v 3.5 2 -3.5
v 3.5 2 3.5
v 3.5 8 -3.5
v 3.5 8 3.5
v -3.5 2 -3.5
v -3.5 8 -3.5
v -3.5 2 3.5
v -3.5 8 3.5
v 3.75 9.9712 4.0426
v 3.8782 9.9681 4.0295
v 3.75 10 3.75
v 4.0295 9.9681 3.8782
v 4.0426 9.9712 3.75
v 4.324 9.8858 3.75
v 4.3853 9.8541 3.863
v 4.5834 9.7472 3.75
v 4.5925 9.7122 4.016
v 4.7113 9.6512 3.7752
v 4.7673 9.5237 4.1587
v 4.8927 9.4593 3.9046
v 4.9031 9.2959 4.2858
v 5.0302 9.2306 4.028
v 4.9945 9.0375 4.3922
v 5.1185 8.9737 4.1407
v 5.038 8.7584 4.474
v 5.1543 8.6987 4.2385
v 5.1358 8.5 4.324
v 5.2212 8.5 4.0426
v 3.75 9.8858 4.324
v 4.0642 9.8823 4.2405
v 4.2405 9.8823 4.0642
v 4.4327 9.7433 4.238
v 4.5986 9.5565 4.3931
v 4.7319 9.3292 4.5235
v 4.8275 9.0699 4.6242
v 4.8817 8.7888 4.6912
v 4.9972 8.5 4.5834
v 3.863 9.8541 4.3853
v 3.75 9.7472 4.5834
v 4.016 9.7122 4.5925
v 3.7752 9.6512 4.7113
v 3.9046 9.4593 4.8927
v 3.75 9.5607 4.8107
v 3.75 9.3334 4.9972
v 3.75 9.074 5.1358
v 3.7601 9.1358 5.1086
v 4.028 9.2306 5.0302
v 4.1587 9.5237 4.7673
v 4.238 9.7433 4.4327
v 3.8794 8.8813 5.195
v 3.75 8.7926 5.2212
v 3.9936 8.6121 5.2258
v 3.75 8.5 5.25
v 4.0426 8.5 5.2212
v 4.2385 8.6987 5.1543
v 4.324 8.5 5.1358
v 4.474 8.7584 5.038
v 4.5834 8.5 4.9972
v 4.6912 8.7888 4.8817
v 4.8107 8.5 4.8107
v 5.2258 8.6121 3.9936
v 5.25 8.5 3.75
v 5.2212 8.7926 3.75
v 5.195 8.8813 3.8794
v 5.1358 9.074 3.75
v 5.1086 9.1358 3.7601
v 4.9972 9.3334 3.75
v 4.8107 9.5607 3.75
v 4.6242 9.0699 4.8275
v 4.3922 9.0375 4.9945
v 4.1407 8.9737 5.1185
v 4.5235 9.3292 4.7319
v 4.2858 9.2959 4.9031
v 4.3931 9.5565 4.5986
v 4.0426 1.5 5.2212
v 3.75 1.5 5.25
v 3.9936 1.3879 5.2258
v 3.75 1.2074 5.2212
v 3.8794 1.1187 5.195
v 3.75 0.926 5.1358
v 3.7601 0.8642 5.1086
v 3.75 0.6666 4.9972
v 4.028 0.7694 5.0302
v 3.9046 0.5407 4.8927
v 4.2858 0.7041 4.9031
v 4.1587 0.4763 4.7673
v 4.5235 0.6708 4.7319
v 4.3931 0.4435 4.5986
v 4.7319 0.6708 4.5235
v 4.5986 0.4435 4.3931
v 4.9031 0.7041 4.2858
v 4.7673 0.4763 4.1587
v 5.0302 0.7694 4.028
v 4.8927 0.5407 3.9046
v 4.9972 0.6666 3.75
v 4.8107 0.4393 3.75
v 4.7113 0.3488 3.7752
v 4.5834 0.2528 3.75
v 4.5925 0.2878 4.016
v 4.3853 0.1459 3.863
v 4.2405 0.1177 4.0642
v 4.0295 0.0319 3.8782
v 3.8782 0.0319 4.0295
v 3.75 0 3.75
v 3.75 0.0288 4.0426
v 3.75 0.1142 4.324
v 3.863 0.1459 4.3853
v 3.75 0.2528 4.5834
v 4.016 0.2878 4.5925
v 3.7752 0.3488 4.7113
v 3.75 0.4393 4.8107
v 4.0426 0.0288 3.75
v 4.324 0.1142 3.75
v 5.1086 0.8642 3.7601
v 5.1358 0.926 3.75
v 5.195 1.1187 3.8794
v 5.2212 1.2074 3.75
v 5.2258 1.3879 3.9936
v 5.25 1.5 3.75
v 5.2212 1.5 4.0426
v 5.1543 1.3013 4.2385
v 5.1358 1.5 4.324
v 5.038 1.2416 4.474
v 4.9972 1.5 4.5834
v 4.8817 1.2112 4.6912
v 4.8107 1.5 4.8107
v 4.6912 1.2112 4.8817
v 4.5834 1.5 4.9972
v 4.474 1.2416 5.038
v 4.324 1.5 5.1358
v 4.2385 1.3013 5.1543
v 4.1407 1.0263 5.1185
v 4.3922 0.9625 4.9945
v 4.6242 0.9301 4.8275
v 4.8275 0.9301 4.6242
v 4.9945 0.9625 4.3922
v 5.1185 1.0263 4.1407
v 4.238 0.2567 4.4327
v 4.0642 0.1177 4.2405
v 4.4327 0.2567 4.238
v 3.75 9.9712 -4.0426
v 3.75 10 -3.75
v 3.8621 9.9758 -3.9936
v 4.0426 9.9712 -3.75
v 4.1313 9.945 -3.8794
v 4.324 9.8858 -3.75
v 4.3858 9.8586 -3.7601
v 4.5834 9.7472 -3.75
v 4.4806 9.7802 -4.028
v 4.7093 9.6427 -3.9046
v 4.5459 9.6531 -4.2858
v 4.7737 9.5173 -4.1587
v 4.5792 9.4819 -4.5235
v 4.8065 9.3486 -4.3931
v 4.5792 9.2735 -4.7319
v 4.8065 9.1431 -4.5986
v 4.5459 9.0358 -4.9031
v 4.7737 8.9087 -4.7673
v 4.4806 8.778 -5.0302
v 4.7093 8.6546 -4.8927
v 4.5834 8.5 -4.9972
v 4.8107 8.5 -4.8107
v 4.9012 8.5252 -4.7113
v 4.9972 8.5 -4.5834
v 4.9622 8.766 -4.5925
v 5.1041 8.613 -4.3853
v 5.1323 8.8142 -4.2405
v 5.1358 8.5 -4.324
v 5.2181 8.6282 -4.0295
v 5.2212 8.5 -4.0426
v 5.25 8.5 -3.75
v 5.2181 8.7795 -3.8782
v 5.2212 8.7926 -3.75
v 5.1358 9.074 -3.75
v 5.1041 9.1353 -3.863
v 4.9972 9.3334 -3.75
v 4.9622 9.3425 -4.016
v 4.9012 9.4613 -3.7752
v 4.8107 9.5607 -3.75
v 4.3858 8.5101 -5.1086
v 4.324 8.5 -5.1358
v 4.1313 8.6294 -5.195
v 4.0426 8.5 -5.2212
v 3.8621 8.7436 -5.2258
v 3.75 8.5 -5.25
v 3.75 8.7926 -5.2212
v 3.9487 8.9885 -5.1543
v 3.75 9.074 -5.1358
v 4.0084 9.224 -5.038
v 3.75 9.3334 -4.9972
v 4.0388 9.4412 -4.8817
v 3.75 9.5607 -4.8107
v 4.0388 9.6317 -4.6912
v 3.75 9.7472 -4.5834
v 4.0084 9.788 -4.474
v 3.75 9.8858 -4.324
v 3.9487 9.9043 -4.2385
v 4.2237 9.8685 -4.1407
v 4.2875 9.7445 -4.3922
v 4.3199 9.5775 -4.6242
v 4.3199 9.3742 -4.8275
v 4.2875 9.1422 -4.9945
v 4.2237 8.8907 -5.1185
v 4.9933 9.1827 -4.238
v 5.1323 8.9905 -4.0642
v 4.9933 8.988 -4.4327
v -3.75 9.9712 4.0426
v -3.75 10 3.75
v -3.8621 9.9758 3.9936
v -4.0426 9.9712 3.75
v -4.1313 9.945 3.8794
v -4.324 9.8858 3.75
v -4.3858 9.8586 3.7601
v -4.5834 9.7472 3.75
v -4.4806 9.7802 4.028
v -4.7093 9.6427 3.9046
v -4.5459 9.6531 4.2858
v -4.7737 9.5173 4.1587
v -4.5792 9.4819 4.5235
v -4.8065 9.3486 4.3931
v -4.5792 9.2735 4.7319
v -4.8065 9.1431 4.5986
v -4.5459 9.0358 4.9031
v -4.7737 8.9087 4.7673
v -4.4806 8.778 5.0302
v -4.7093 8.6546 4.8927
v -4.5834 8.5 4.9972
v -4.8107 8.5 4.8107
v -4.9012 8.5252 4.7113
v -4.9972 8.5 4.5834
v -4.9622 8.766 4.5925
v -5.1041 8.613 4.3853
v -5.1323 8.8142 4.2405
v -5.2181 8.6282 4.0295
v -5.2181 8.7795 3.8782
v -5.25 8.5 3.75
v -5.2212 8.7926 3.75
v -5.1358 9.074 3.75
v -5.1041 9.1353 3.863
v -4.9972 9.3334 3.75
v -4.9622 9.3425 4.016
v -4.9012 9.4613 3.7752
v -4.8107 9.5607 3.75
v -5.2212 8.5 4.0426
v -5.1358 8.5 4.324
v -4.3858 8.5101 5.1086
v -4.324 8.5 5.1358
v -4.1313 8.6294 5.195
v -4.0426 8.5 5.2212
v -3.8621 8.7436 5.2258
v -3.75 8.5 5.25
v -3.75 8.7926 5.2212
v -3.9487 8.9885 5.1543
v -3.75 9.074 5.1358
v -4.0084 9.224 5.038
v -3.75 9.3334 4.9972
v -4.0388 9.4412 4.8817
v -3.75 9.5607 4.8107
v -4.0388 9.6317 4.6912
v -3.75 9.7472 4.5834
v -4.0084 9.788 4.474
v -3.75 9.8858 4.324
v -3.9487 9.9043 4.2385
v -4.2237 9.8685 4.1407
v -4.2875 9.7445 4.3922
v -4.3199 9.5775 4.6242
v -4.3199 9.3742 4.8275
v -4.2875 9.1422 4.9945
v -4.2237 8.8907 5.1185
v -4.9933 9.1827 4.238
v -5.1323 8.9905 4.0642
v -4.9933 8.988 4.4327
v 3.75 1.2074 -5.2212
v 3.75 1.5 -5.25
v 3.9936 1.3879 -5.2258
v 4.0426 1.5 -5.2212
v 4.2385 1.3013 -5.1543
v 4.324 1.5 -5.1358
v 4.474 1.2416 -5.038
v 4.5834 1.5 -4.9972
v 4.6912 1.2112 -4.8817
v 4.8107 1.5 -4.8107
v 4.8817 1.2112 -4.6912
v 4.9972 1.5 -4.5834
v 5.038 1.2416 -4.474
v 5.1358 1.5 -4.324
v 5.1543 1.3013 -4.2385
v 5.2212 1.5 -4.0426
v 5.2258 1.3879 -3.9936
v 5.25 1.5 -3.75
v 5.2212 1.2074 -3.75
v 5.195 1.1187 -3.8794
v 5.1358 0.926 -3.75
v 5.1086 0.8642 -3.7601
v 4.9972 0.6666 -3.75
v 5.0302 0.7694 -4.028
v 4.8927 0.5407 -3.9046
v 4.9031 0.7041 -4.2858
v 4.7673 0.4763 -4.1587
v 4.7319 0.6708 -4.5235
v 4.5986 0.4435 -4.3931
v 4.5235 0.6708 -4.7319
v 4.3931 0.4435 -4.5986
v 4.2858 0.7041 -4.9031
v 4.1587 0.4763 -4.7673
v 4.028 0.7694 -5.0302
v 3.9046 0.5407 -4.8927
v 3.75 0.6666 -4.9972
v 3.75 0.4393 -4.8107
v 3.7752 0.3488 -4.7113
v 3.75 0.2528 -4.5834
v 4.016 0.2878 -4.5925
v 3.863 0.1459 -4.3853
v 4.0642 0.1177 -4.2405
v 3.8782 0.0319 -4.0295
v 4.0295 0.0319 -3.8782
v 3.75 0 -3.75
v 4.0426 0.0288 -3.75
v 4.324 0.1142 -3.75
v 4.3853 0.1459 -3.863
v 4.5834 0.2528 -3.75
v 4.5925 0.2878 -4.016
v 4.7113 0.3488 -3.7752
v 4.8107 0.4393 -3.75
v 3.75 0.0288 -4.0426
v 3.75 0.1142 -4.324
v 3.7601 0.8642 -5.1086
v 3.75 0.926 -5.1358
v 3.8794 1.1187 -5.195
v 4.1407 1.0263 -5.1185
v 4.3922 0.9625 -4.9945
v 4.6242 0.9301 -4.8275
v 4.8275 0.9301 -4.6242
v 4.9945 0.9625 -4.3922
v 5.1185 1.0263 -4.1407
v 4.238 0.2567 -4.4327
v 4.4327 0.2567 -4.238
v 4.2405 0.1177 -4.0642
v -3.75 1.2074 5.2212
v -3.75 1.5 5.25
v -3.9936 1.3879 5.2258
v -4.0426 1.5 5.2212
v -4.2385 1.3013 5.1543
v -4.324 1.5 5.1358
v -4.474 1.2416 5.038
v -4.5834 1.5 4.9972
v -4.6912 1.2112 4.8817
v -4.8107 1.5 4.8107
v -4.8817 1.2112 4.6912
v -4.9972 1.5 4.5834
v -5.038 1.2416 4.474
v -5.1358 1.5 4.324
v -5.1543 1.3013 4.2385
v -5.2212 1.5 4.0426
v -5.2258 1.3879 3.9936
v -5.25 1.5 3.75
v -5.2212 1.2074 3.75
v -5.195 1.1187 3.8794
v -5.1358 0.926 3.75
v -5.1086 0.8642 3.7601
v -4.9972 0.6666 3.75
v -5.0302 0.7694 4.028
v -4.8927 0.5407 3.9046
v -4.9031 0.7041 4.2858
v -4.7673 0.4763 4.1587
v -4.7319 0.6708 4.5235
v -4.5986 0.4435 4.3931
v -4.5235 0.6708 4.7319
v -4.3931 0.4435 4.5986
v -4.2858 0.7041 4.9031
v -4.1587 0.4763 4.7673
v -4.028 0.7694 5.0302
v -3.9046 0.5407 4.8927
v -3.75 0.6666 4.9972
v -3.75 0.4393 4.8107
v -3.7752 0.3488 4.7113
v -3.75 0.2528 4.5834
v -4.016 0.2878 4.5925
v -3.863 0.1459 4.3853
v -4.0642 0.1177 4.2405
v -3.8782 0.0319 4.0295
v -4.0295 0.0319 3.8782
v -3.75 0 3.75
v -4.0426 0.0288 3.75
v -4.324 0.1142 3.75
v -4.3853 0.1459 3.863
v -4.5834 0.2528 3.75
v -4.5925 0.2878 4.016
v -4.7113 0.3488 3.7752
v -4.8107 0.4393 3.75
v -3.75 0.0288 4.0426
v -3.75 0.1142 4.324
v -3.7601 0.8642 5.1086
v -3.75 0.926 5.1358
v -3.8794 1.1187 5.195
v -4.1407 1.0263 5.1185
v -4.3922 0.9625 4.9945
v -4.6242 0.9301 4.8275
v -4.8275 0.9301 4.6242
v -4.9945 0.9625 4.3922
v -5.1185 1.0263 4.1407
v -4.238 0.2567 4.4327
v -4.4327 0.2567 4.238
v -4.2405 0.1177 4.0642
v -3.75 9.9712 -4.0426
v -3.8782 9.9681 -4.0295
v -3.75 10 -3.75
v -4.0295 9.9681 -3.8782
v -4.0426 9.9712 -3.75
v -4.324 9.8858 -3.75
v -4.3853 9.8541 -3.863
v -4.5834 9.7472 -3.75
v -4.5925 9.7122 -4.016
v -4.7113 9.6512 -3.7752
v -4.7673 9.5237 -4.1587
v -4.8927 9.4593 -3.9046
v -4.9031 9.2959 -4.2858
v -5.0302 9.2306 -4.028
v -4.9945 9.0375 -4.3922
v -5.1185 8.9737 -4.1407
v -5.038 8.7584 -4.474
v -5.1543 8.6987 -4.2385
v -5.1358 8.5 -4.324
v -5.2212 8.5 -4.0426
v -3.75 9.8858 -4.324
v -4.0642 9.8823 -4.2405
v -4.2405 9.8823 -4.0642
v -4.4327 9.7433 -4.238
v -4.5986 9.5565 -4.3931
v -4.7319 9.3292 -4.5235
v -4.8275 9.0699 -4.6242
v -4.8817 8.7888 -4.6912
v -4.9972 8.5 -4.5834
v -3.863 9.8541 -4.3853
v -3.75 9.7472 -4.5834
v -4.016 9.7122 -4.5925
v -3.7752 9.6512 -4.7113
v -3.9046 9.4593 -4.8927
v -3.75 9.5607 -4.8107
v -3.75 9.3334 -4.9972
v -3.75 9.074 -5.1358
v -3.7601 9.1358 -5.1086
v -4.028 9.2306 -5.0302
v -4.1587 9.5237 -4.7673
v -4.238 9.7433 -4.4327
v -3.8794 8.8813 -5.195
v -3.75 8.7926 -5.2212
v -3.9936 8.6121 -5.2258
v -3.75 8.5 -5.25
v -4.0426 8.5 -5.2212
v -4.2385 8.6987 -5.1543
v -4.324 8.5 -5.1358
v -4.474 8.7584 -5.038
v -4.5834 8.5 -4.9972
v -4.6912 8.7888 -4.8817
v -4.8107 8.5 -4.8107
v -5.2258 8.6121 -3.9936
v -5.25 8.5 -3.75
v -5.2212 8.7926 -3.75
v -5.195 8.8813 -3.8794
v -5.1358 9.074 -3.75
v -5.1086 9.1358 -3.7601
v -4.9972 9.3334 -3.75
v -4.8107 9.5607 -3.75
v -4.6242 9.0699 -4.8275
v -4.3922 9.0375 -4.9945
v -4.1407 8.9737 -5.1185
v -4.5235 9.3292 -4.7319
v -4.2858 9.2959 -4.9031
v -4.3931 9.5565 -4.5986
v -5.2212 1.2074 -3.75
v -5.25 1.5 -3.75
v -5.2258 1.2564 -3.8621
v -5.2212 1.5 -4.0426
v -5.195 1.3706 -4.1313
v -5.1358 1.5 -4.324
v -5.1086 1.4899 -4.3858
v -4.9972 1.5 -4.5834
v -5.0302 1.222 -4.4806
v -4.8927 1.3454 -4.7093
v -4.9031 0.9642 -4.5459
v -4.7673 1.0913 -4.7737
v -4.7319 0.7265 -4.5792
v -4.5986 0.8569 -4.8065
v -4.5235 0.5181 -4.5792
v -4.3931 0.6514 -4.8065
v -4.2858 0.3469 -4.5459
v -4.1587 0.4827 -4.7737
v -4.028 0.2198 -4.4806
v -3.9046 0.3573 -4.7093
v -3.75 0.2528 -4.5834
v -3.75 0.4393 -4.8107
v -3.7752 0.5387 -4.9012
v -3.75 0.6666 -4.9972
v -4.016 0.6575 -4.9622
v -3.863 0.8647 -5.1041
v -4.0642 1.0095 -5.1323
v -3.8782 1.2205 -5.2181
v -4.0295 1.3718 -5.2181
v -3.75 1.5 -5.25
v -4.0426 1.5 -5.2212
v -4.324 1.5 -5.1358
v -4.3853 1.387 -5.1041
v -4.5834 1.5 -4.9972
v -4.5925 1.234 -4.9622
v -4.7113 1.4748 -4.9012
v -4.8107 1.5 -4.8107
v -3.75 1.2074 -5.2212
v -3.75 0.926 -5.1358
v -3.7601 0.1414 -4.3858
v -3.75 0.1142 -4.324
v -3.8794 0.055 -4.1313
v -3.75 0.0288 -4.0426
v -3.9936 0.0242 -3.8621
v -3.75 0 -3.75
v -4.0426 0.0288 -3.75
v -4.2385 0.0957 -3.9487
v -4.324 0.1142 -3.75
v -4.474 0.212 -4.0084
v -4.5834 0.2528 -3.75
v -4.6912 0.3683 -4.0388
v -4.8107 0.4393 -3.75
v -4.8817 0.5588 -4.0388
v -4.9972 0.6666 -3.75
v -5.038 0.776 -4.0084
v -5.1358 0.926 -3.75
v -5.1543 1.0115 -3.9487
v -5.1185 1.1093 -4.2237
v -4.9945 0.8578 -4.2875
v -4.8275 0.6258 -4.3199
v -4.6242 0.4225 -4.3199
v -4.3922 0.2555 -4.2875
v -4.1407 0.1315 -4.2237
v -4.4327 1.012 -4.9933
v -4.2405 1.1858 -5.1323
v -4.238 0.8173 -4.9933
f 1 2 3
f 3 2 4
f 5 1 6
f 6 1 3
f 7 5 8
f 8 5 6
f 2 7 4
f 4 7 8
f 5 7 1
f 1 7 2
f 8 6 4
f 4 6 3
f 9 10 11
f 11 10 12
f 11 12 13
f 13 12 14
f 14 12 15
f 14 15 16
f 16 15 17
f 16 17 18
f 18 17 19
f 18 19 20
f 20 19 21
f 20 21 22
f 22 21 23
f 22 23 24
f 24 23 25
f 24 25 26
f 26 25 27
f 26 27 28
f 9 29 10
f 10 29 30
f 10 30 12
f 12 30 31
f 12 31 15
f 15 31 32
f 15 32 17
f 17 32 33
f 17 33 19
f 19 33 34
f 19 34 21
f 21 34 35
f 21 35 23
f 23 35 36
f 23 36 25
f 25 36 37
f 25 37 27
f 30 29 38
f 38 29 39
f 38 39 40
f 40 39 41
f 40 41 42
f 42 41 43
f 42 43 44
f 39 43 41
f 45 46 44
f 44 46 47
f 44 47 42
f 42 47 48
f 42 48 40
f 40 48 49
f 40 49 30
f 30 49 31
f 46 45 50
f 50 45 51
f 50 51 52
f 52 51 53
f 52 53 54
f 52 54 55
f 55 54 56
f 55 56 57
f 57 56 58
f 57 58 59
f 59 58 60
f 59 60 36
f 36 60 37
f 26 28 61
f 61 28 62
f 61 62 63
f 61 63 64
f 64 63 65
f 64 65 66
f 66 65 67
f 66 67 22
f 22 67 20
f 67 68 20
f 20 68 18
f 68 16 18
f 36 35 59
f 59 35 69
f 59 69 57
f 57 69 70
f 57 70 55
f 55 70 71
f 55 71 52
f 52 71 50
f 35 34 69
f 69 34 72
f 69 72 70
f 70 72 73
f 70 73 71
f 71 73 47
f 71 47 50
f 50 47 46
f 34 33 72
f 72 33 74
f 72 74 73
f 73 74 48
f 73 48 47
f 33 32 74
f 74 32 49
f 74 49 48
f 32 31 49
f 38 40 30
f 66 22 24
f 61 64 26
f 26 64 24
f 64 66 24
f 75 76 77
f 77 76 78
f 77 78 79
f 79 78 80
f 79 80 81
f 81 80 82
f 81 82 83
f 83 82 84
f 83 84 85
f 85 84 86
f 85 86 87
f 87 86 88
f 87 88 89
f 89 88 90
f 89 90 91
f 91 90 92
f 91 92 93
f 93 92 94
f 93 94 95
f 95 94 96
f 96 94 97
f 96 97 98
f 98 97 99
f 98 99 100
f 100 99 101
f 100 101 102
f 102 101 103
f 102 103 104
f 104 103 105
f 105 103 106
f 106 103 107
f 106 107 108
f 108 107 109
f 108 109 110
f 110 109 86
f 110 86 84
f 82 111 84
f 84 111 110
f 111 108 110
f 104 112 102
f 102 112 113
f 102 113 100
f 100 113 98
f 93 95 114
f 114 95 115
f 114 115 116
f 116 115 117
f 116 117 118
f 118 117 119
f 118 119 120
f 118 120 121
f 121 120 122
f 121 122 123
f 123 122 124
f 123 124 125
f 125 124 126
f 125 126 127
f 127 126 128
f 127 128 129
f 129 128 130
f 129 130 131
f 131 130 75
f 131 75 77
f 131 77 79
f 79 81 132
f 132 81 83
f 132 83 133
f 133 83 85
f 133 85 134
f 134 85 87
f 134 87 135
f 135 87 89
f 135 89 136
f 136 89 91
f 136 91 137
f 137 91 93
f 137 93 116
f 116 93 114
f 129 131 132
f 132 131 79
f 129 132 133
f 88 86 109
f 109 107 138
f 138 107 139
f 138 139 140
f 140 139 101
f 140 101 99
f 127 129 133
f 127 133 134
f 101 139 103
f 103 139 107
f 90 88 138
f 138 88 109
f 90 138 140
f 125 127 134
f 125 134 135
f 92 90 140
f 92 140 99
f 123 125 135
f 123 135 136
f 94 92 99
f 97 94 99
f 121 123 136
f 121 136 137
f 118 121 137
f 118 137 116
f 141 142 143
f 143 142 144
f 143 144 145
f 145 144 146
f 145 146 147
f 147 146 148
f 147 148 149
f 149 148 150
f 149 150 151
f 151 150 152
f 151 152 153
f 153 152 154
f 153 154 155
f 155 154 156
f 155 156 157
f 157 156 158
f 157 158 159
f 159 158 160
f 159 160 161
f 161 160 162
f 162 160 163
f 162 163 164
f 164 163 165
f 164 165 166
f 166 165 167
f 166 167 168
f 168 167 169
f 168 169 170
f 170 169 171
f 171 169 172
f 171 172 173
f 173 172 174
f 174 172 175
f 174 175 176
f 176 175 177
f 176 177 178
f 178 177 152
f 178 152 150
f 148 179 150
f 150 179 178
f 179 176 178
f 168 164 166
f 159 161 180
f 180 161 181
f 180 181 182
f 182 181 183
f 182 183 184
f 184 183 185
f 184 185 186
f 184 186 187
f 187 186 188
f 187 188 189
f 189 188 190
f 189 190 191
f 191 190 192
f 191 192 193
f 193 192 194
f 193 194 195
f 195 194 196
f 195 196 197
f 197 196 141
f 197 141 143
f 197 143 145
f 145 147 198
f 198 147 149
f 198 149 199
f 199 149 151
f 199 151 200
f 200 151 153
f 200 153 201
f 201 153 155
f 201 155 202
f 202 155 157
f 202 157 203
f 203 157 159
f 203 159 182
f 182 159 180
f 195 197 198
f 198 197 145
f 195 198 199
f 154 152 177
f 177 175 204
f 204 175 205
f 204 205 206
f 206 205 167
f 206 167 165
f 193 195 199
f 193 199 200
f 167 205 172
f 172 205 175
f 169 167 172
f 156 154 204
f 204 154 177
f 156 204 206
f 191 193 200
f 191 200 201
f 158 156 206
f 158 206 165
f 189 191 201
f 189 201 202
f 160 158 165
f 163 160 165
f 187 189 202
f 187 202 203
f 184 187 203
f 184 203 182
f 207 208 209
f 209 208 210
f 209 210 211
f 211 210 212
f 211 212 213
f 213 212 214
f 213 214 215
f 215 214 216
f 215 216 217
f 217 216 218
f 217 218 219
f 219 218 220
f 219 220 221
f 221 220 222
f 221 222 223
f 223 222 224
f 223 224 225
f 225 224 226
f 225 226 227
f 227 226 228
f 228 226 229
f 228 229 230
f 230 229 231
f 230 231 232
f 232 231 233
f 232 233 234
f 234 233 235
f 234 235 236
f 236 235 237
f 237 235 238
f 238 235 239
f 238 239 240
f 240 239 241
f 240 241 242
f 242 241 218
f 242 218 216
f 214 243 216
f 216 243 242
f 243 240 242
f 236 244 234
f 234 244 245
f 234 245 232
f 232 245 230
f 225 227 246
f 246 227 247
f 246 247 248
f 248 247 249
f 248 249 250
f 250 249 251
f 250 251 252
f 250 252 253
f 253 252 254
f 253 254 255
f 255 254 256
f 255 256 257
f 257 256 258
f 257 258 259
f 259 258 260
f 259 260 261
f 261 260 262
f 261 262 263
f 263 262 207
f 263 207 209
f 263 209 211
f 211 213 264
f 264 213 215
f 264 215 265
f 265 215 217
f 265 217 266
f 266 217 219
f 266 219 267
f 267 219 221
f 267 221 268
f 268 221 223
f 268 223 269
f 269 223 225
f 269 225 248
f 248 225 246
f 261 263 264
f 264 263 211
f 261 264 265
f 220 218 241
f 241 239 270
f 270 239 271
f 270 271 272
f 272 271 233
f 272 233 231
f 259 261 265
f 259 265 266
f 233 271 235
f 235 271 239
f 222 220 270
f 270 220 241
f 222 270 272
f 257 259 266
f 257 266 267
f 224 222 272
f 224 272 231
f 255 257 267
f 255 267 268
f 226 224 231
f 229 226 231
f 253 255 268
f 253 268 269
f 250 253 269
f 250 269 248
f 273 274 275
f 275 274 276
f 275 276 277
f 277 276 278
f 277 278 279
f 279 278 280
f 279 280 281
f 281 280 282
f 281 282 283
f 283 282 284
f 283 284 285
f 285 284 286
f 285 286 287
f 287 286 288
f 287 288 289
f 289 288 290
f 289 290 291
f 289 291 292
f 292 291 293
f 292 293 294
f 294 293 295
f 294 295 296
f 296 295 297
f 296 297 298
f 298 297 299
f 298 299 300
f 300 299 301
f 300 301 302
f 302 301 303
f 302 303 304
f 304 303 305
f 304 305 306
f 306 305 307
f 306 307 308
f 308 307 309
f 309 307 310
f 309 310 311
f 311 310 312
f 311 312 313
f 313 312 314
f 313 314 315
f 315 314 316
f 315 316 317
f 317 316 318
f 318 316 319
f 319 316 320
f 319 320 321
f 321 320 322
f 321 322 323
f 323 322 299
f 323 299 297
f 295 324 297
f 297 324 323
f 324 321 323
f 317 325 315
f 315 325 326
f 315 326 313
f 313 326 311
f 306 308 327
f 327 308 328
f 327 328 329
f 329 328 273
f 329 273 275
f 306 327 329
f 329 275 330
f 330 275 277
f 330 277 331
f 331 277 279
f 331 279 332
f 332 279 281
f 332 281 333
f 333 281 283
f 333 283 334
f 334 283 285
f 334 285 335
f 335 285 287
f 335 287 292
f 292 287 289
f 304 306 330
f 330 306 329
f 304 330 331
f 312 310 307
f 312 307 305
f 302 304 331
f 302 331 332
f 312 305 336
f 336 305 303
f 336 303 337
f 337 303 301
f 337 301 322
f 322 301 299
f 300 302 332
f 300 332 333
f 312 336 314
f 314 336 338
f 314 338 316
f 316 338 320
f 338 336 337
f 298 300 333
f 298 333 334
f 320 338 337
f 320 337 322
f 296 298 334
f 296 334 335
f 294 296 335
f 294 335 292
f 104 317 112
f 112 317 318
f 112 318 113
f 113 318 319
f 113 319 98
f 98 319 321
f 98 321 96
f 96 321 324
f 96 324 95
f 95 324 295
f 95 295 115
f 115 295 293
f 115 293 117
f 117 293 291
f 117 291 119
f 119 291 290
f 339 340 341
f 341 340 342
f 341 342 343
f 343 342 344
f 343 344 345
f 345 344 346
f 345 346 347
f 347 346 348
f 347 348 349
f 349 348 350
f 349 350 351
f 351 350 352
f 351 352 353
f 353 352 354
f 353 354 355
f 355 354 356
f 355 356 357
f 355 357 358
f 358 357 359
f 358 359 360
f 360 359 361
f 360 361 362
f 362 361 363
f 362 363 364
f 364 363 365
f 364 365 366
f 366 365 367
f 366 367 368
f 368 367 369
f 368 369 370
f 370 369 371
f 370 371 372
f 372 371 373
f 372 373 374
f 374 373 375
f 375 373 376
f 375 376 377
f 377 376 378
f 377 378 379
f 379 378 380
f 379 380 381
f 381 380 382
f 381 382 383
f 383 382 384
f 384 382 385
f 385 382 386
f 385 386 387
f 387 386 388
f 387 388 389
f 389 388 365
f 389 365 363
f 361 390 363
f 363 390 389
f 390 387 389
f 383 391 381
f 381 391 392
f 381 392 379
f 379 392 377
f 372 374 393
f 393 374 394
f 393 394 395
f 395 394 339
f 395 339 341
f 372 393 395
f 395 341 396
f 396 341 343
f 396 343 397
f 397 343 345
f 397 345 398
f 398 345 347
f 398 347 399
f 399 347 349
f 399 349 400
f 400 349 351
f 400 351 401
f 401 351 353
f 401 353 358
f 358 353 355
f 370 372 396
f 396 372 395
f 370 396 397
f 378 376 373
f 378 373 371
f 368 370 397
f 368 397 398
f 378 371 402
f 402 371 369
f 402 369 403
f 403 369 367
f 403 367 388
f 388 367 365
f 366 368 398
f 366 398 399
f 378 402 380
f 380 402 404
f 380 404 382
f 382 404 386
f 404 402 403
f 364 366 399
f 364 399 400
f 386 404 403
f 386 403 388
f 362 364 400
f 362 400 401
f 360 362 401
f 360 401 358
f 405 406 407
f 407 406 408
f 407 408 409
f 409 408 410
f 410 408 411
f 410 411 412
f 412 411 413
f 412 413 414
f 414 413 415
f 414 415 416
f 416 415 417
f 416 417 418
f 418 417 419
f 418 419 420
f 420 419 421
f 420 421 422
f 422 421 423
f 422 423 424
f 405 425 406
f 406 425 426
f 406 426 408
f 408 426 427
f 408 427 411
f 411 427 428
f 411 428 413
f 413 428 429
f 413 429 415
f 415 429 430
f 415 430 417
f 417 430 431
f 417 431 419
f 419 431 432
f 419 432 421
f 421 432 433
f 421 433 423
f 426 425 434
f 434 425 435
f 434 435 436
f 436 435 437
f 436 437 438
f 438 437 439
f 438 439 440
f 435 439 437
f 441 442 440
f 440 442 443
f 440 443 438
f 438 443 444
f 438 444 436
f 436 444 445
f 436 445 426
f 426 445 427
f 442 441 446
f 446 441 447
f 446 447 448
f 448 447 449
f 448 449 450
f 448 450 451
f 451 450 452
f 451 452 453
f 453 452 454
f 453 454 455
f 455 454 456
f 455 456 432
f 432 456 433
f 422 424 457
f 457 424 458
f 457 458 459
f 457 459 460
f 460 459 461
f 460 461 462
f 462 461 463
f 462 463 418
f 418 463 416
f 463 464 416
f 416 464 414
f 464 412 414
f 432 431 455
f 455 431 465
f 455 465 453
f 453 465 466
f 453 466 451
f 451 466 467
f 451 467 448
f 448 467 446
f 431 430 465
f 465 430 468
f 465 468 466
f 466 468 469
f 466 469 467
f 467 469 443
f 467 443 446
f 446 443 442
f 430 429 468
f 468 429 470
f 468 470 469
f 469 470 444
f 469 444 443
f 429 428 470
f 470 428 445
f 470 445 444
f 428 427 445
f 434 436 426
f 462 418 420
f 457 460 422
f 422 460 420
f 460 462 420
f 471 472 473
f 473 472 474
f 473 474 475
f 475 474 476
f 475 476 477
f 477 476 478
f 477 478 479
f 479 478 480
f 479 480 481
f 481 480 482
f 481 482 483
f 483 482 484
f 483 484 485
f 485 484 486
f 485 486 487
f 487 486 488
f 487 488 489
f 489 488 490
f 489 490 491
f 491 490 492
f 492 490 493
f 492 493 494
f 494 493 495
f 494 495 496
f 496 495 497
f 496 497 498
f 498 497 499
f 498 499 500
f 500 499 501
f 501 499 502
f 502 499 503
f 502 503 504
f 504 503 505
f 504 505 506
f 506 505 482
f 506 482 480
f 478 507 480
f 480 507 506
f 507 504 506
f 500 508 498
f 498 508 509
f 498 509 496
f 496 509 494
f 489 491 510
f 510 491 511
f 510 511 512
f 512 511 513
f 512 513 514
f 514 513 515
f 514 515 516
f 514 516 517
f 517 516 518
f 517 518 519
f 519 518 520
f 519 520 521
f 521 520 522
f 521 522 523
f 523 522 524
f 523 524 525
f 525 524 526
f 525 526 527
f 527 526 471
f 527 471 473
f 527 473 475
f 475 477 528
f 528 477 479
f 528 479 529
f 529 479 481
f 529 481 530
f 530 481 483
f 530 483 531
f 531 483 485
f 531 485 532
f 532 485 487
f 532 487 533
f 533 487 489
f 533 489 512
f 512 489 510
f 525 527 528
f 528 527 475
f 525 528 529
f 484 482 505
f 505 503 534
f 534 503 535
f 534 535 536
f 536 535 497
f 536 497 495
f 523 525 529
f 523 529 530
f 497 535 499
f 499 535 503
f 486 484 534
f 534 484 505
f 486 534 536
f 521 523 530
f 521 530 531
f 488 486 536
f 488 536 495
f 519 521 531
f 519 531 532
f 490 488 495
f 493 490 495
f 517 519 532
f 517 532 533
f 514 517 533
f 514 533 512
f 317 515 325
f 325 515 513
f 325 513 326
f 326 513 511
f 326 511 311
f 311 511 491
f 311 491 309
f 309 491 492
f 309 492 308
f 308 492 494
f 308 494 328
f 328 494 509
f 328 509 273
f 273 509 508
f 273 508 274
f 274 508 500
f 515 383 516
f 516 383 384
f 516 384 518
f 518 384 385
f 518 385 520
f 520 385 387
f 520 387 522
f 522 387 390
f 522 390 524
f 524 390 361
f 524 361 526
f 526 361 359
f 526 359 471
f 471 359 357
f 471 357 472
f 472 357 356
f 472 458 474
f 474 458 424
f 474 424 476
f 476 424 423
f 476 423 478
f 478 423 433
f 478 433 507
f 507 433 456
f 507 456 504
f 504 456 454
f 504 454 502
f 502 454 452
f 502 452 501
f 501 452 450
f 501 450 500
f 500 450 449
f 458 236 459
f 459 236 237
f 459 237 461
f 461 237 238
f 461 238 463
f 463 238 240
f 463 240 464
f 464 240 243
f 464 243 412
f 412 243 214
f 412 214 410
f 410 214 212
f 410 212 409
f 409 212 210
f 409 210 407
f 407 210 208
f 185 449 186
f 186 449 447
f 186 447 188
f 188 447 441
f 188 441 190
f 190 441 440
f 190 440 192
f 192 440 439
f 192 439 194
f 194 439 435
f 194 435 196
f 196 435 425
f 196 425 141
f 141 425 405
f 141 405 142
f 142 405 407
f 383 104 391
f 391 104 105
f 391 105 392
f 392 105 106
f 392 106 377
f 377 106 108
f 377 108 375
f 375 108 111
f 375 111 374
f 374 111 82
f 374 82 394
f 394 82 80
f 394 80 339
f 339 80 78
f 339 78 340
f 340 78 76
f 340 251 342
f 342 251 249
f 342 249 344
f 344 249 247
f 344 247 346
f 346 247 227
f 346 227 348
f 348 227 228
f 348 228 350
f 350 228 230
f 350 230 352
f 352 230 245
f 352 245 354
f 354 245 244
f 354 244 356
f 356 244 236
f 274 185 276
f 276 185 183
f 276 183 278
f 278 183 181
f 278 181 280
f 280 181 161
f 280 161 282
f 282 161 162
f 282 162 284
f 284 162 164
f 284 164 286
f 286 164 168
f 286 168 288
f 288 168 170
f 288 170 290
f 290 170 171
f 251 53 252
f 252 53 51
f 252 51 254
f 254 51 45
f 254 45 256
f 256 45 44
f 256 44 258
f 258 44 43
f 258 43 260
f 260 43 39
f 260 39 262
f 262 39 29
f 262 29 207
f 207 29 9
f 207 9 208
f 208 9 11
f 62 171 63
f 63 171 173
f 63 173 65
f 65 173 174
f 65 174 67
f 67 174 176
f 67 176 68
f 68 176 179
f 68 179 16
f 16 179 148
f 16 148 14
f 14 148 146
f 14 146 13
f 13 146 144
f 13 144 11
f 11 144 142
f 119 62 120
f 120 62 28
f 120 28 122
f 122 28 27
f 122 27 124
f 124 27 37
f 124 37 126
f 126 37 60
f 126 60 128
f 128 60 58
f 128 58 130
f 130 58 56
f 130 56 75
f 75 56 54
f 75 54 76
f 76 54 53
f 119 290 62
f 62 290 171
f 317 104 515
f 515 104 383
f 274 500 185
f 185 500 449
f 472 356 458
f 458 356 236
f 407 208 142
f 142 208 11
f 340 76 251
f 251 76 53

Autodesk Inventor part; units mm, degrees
ref_plane "YZ Plane" through (0, 0, 0) normal (1, 0, 0) x (0, 1, 0)
ref_plane "XZ Plane" through (0, 0, 0) normal (0, 1, 0) x (-1, 0, 0)
ref_plane "XY Plane" through (0, 0, 0) normal (0, 0, 1) x (1, 0, 0)
sketch "Эскиз1" plane through (0, 0, 0) normal (0, 1, 0) x (-1, 0, 0)
  line L0 (5.25, 5.25) -> (-5.25, 5.25)
  line L1 (-5.25, 5.25) -> (-5.25, -5.25)
  line L2 (-5.25, -5.25) -> (5.25, -5.25)
  line L3 (5.25, -5.25) -> (5.25, 5.25)
  line L4 (5.25, 0) -> (-5.25, 0) construction
  line L5 (0, 5.25) -> (0, -5.25) construction
  line L6 (3.5, -3.5) -> (-3.5, -3.5)
  line L7 (-3.5, -3.5) -> (-3.5, 3.5)
  line L8 (-3.5, 3.5) -> (3.5, 3.5)
  line L9 (3.5, 3.5) -> (3.5, -3.5)
  line L10 (0, -3.5) -> (0, 3.5) construction
  line L11 (3.5, 0) -> (-3.5, 0) construction
  point P0 (0, 0)
  point P1 (0, 0)
  point P2 (0, 0)
  dimension "d0" = 10.5
  dimension "d1" = 10.5
  dimension "d4" = 7
  dimension "d5" = 7
extrude "Выдавливание1" add sketch "Эскиз1" along normal blind 10 contours L3 L2 L1 L0 | L6 L7 L8 L9
ref_plane "РабПлоскость1" through (0, 2, 0) normal (0, -1, 0) x (1, 0, 0)
extrude "Выдавливание2" cut sketch "Эскиз1" along normal blind 6 from surface at 2 contours L6 L7 L8 L9
fillet "Сопряжение1" radius 1.5 12 edges at (-5.25, 5, -5.25) (-5.25, 0, 0) (0, 0, -5.25) (-5.25, 5, 5.25) (-5.25, 10, 0) (0, 10, -5.25) (0, 10, 5.25) (5.25, 0, 0) (5.25, 5, 5.25) (5.25, 10, 0) (5.25, 5, -5.25) (0, 0, 5.25)
properties part number "cube"
